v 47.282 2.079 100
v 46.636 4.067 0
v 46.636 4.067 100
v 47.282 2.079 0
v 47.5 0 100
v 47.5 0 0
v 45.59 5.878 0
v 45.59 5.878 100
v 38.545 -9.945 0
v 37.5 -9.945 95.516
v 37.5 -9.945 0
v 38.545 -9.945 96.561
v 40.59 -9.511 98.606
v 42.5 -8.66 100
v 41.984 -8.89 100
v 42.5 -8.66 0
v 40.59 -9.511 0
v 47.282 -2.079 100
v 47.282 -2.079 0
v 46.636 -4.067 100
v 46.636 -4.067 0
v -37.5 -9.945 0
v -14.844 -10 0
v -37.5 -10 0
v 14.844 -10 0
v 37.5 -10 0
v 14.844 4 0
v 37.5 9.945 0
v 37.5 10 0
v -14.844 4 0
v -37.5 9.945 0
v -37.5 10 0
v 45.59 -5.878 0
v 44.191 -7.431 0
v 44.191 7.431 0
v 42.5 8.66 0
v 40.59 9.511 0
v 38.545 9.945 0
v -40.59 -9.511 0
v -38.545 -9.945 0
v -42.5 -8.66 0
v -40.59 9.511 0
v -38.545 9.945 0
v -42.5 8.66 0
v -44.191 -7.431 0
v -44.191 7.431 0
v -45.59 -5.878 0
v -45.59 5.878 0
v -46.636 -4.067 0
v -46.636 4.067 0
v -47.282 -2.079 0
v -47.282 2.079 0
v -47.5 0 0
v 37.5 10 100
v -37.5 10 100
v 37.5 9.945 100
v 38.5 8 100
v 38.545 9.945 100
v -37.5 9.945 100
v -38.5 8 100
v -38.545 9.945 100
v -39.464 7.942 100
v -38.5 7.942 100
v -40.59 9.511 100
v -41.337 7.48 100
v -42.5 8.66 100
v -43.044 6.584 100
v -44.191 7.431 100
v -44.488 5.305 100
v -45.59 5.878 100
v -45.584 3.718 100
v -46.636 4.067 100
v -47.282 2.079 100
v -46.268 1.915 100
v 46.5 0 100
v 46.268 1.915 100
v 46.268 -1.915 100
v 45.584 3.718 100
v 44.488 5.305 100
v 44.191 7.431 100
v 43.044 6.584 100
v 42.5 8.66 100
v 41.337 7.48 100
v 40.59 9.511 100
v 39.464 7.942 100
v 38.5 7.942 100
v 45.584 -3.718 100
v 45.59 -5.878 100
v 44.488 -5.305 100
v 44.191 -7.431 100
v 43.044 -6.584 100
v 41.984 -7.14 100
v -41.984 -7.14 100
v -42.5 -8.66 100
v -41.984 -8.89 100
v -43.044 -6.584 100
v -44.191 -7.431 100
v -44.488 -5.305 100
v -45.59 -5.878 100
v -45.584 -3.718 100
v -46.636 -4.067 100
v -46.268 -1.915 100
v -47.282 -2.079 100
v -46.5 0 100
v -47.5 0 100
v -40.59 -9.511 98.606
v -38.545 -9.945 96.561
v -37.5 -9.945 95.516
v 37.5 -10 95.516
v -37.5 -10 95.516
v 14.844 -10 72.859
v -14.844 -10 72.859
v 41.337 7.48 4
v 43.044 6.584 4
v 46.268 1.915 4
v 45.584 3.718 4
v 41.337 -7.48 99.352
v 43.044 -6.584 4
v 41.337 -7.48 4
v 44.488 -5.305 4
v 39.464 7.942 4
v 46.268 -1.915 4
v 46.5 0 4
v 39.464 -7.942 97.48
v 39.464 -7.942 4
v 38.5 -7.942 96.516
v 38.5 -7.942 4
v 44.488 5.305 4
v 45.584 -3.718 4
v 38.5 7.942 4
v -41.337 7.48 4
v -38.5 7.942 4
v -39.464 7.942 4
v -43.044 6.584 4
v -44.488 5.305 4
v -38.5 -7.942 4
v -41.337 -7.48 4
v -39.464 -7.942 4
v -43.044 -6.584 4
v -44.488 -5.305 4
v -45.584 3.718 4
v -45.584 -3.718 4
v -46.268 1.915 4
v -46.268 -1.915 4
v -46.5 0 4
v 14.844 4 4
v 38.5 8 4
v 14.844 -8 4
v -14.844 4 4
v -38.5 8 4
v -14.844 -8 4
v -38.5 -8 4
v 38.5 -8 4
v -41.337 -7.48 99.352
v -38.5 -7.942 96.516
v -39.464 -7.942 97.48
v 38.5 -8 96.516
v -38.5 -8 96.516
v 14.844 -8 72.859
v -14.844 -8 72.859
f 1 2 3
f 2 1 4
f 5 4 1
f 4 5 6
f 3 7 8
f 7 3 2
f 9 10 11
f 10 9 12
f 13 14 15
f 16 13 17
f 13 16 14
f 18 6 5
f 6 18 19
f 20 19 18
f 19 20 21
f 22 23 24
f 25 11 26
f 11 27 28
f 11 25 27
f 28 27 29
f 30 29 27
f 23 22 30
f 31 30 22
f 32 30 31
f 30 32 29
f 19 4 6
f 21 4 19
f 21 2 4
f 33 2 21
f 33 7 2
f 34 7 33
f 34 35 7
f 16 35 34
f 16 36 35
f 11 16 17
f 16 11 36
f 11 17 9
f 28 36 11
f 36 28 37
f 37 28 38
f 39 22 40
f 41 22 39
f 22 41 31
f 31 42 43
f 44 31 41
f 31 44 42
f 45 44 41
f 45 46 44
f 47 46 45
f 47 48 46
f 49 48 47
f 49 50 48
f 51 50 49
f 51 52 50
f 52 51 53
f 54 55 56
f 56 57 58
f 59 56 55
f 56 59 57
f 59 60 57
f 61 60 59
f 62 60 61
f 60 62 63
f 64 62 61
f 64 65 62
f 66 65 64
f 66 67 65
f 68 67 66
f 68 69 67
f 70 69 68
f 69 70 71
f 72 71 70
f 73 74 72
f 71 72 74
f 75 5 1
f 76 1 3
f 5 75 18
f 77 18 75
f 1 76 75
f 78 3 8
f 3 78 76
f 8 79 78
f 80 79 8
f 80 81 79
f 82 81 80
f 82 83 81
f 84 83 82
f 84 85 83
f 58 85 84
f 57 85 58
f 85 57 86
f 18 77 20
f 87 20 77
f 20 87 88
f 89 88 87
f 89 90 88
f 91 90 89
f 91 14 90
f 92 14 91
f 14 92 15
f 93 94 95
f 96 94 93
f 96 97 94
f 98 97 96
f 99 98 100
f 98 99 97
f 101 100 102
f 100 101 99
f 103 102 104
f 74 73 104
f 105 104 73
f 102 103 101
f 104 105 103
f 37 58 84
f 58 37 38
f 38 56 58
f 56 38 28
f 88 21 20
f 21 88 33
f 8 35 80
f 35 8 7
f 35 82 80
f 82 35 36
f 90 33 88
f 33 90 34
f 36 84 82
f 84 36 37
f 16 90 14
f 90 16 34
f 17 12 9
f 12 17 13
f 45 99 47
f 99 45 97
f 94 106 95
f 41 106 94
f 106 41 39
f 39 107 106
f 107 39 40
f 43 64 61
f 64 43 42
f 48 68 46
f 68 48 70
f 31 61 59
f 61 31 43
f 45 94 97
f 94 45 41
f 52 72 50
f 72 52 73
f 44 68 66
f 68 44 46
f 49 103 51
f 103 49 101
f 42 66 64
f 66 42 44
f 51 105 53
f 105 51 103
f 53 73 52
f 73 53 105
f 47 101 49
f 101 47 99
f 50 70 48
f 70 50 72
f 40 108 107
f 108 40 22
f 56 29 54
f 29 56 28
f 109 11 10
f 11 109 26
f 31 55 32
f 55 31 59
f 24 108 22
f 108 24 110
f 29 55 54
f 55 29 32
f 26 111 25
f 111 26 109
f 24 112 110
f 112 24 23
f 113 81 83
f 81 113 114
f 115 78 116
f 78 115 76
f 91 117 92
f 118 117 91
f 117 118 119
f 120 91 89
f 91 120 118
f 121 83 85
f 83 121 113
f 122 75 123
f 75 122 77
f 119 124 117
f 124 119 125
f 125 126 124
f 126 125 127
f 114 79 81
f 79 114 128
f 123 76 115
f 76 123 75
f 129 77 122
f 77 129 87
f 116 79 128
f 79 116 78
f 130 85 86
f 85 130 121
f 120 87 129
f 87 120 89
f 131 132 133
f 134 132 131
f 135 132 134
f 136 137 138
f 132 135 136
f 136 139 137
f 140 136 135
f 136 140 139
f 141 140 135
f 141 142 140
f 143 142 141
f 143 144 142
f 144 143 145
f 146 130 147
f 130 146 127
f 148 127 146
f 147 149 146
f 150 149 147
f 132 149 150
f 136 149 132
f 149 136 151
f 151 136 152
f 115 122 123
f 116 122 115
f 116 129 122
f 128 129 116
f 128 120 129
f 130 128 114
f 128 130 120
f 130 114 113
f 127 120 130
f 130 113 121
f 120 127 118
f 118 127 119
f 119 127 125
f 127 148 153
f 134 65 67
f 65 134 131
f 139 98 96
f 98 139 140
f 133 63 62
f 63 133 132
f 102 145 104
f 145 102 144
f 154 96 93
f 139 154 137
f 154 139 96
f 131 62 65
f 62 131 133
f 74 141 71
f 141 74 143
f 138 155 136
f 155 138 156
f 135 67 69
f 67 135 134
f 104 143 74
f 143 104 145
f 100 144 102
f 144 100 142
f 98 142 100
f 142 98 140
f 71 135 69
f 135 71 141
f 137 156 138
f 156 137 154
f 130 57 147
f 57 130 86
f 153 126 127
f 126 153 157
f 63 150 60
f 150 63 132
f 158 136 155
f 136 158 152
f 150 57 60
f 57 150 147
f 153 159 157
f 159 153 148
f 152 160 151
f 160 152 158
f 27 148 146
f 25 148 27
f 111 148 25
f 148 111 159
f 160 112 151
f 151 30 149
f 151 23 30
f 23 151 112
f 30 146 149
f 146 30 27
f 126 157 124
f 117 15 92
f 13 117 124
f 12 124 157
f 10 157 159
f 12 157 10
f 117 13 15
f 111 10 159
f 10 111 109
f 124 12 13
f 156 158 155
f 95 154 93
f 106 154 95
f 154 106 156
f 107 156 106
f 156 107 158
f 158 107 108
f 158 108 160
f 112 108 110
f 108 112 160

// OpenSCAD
model_width = 95;
model_height = 100;
model_depth = 20;
wall_thickness = 4;

module body(width, depth, height) {
    union(){
    translate([width/2-depth/2, 0, 0])
        cylinder(h=height, r=depth/2);
    translate([-(width/2-depth/2), 0, 0])
        cylinder(h=height, r=depth/2);
    translate([-(width-depth)/2, -depth/2, 0])
        cube([width-depth, depth, height]);
    }
}

module cradle(width, depth, height) {
    cutout_width = width/3.2;
    difference() {
        // outer body
        body(width, depth, height);
        
        // inner body
        translate([0, 0, wall_thickness])
            body(width-wall_thickness/2, depth-wall_thickness, height);
        
        // front cutout
        translate([-cutout_width/2, wall_thickness-depth, 0])
            cube([cutout_width, depth, height]);
    
        // notch   
        translate([0, -depth/2, height])
            rotate([0, 45, 0])
            cube([cutout_width*2, depth, cutout_width*2], center=true);
    }
}

cradle(model_width, model_depth, model_height);
